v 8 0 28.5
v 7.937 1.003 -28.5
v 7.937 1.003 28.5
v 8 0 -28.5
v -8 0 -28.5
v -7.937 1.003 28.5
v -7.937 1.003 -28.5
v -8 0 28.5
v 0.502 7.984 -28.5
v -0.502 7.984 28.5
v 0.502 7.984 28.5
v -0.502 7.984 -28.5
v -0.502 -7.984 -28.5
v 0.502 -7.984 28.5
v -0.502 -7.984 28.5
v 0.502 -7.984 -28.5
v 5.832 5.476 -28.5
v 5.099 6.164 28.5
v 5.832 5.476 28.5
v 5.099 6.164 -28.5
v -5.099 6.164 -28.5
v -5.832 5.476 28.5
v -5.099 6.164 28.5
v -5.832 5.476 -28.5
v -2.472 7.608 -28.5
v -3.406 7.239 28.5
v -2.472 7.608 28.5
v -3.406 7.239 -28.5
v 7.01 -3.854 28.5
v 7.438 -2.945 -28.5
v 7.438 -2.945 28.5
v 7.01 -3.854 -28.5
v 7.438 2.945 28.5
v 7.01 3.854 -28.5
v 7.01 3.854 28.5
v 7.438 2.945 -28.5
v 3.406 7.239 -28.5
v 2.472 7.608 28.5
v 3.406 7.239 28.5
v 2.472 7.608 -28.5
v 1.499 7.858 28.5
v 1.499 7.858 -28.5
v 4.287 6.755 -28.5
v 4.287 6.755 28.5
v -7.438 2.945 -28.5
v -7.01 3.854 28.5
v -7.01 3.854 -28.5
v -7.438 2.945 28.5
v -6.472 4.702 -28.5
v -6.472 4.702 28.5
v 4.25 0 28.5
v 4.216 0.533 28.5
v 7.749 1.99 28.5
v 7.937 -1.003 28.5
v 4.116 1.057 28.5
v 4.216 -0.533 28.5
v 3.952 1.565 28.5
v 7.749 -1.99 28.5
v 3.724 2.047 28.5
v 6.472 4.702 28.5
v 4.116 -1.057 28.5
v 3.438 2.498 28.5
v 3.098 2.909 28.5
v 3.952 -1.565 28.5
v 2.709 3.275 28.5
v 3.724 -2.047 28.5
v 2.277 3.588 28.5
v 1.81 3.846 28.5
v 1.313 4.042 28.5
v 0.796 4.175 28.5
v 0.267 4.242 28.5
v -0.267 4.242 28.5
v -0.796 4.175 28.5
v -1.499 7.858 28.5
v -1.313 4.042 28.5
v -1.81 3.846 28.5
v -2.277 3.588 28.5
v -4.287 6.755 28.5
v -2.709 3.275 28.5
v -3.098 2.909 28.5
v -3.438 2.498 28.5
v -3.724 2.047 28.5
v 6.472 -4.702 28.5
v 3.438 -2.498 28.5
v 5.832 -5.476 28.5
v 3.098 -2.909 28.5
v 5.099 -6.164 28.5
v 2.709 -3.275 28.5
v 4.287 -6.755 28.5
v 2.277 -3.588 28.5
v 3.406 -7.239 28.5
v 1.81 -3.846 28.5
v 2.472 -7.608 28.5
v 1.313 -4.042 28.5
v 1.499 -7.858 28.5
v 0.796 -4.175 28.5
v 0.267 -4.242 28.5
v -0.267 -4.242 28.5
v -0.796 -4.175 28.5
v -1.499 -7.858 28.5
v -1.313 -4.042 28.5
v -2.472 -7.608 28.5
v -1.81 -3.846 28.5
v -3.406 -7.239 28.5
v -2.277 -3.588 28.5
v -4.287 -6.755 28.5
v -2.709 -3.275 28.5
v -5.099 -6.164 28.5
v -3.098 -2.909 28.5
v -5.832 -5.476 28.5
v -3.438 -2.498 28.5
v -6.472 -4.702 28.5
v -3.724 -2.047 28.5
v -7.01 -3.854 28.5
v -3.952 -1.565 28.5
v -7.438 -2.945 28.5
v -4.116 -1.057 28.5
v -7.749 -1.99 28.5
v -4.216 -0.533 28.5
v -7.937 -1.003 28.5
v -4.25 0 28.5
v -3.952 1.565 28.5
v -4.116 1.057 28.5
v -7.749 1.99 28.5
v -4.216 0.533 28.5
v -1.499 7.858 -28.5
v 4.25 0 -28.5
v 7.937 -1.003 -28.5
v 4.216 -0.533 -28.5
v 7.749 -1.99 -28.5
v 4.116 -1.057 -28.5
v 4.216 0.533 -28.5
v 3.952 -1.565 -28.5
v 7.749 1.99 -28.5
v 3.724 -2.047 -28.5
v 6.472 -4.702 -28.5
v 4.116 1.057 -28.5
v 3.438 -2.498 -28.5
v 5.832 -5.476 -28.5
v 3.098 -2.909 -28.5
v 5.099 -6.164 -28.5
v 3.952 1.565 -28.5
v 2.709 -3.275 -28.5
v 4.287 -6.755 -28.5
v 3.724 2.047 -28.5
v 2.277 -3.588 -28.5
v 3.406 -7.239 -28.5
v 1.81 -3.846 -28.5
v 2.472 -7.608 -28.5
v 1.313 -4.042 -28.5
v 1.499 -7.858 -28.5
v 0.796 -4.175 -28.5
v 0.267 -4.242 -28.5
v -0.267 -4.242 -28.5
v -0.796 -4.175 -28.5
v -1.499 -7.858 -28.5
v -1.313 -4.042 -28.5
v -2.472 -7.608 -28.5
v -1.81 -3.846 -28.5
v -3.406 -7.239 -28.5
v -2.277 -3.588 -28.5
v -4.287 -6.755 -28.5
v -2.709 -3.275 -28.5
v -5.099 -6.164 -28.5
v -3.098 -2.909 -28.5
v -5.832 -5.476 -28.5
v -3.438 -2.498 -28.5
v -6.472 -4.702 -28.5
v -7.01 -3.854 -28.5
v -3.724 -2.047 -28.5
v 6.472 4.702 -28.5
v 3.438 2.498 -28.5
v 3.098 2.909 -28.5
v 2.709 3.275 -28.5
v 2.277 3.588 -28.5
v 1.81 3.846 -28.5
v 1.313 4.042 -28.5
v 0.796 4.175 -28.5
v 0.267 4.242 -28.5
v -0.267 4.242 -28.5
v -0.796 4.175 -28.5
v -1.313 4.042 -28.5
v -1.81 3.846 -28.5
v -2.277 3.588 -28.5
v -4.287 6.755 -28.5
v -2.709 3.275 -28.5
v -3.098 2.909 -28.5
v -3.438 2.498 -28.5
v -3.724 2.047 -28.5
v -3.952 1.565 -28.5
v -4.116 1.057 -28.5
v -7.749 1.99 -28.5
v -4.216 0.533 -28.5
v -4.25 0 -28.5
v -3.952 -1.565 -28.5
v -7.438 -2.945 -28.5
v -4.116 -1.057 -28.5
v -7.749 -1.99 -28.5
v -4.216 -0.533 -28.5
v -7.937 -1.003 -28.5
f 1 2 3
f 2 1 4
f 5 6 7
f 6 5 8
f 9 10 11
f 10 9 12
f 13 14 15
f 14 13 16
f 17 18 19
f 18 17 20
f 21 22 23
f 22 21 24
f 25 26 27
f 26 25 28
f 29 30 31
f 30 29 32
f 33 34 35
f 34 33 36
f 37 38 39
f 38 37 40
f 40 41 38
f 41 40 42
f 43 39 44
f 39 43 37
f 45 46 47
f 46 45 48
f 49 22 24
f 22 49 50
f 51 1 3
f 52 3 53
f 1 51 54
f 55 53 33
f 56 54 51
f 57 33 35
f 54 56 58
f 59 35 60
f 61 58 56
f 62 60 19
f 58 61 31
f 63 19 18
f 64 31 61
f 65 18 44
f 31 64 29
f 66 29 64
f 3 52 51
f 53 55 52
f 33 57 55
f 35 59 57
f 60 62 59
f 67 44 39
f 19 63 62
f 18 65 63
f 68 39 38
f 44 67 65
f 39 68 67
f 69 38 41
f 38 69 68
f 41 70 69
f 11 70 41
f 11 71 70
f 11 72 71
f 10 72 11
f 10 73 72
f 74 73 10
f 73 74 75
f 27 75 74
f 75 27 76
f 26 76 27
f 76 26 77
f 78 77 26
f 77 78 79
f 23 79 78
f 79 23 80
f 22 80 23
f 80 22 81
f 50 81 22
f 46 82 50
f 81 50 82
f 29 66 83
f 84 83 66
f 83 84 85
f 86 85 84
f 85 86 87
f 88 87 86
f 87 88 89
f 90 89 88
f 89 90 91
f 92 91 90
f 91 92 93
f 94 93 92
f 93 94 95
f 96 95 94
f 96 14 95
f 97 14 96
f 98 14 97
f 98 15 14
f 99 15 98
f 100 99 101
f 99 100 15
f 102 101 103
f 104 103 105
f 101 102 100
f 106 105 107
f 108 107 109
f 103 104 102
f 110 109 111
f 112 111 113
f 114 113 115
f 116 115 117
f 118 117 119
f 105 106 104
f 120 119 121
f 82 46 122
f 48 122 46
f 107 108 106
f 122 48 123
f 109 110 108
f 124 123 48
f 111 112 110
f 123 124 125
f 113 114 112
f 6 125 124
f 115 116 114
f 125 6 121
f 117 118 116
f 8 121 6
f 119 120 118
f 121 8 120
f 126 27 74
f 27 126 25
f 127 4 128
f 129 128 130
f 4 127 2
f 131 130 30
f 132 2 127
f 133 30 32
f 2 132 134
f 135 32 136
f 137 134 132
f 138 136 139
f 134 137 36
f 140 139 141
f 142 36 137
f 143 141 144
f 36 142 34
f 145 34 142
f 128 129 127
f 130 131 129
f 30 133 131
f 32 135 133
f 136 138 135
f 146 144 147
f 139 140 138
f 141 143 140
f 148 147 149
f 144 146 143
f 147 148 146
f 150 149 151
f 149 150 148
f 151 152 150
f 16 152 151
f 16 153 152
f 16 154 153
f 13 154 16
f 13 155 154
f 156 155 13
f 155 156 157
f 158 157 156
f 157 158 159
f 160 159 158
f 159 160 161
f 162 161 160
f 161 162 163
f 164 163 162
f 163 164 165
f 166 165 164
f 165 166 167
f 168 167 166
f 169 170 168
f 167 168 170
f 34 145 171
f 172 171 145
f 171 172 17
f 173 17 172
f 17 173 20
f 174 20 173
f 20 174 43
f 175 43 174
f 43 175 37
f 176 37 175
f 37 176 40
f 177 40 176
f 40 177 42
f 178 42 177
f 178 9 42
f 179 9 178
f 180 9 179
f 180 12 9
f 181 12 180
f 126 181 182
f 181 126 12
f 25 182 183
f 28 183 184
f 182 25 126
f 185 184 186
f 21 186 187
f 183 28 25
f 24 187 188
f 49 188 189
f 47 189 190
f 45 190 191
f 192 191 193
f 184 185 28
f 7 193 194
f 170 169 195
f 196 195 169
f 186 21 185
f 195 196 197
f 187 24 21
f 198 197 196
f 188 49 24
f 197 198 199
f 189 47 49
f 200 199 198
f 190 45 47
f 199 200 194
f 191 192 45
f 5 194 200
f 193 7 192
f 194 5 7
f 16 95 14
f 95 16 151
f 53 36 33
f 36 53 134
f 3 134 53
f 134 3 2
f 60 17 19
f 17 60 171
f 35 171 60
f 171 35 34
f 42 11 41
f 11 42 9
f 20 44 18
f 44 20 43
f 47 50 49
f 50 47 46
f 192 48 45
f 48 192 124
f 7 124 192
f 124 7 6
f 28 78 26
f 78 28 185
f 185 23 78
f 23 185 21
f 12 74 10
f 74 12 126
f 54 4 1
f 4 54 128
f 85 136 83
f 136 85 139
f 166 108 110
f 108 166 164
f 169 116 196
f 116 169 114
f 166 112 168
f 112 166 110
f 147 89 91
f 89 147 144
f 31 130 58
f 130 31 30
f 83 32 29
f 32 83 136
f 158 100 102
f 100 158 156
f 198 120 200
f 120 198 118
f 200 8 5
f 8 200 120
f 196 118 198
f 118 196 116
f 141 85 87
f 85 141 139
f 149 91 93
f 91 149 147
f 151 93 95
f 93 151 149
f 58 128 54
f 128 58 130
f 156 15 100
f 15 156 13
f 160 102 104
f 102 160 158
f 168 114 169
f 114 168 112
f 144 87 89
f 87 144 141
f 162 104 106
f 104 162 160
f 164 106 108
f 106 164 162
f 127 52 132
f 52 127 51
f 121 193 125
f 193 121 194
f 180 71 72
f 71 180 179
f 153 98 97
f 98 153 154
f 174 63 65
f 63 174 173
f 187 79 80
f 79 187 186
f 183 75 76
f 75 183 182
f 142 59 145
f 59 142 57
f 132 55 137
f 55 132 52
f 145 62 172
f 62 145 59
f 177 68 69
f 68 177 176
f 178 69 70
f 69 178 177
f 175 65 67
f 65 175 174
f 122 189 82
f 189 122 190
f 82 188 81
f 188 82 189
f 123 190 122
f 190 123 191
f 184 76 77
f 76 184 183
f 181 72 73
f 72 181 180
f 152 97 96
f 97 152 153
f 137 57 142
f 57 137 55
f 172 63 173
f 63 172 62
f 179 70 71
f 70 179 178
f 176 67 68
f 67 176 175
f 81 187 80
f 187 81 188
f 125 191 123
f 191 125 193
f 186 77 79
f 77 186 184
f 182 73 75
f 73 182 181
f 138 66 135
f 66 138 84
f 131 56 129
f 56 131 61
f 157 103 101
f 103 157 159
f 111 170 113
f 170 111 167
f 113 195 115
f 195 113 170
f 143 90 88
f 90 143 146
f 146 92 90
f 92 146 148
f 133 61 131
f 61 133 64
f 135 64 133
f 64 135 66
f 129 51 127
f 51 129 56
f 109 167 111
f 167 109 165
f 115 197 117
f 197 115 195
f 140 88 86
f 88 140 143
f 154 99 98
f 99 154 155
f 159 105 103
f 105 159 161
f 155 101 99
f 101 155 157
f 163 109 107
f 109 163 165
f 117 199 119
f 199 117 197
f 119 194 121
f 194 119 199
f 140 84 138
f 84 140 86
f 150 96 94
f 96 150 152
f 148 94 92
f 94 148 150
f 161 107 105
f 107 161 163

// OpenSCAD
$fn = 50;


difference() {
	union() {
		translate(v = [0, 0, -28.5000000000]) {
			cylinder(h = 57, r = 8.0000000000);
		}
	}
	union() {
		translate(v = [0, 0, -100.0000000000]) {
			cylinder(h = 200, r = 4.2500000000);
		}
	}
}
